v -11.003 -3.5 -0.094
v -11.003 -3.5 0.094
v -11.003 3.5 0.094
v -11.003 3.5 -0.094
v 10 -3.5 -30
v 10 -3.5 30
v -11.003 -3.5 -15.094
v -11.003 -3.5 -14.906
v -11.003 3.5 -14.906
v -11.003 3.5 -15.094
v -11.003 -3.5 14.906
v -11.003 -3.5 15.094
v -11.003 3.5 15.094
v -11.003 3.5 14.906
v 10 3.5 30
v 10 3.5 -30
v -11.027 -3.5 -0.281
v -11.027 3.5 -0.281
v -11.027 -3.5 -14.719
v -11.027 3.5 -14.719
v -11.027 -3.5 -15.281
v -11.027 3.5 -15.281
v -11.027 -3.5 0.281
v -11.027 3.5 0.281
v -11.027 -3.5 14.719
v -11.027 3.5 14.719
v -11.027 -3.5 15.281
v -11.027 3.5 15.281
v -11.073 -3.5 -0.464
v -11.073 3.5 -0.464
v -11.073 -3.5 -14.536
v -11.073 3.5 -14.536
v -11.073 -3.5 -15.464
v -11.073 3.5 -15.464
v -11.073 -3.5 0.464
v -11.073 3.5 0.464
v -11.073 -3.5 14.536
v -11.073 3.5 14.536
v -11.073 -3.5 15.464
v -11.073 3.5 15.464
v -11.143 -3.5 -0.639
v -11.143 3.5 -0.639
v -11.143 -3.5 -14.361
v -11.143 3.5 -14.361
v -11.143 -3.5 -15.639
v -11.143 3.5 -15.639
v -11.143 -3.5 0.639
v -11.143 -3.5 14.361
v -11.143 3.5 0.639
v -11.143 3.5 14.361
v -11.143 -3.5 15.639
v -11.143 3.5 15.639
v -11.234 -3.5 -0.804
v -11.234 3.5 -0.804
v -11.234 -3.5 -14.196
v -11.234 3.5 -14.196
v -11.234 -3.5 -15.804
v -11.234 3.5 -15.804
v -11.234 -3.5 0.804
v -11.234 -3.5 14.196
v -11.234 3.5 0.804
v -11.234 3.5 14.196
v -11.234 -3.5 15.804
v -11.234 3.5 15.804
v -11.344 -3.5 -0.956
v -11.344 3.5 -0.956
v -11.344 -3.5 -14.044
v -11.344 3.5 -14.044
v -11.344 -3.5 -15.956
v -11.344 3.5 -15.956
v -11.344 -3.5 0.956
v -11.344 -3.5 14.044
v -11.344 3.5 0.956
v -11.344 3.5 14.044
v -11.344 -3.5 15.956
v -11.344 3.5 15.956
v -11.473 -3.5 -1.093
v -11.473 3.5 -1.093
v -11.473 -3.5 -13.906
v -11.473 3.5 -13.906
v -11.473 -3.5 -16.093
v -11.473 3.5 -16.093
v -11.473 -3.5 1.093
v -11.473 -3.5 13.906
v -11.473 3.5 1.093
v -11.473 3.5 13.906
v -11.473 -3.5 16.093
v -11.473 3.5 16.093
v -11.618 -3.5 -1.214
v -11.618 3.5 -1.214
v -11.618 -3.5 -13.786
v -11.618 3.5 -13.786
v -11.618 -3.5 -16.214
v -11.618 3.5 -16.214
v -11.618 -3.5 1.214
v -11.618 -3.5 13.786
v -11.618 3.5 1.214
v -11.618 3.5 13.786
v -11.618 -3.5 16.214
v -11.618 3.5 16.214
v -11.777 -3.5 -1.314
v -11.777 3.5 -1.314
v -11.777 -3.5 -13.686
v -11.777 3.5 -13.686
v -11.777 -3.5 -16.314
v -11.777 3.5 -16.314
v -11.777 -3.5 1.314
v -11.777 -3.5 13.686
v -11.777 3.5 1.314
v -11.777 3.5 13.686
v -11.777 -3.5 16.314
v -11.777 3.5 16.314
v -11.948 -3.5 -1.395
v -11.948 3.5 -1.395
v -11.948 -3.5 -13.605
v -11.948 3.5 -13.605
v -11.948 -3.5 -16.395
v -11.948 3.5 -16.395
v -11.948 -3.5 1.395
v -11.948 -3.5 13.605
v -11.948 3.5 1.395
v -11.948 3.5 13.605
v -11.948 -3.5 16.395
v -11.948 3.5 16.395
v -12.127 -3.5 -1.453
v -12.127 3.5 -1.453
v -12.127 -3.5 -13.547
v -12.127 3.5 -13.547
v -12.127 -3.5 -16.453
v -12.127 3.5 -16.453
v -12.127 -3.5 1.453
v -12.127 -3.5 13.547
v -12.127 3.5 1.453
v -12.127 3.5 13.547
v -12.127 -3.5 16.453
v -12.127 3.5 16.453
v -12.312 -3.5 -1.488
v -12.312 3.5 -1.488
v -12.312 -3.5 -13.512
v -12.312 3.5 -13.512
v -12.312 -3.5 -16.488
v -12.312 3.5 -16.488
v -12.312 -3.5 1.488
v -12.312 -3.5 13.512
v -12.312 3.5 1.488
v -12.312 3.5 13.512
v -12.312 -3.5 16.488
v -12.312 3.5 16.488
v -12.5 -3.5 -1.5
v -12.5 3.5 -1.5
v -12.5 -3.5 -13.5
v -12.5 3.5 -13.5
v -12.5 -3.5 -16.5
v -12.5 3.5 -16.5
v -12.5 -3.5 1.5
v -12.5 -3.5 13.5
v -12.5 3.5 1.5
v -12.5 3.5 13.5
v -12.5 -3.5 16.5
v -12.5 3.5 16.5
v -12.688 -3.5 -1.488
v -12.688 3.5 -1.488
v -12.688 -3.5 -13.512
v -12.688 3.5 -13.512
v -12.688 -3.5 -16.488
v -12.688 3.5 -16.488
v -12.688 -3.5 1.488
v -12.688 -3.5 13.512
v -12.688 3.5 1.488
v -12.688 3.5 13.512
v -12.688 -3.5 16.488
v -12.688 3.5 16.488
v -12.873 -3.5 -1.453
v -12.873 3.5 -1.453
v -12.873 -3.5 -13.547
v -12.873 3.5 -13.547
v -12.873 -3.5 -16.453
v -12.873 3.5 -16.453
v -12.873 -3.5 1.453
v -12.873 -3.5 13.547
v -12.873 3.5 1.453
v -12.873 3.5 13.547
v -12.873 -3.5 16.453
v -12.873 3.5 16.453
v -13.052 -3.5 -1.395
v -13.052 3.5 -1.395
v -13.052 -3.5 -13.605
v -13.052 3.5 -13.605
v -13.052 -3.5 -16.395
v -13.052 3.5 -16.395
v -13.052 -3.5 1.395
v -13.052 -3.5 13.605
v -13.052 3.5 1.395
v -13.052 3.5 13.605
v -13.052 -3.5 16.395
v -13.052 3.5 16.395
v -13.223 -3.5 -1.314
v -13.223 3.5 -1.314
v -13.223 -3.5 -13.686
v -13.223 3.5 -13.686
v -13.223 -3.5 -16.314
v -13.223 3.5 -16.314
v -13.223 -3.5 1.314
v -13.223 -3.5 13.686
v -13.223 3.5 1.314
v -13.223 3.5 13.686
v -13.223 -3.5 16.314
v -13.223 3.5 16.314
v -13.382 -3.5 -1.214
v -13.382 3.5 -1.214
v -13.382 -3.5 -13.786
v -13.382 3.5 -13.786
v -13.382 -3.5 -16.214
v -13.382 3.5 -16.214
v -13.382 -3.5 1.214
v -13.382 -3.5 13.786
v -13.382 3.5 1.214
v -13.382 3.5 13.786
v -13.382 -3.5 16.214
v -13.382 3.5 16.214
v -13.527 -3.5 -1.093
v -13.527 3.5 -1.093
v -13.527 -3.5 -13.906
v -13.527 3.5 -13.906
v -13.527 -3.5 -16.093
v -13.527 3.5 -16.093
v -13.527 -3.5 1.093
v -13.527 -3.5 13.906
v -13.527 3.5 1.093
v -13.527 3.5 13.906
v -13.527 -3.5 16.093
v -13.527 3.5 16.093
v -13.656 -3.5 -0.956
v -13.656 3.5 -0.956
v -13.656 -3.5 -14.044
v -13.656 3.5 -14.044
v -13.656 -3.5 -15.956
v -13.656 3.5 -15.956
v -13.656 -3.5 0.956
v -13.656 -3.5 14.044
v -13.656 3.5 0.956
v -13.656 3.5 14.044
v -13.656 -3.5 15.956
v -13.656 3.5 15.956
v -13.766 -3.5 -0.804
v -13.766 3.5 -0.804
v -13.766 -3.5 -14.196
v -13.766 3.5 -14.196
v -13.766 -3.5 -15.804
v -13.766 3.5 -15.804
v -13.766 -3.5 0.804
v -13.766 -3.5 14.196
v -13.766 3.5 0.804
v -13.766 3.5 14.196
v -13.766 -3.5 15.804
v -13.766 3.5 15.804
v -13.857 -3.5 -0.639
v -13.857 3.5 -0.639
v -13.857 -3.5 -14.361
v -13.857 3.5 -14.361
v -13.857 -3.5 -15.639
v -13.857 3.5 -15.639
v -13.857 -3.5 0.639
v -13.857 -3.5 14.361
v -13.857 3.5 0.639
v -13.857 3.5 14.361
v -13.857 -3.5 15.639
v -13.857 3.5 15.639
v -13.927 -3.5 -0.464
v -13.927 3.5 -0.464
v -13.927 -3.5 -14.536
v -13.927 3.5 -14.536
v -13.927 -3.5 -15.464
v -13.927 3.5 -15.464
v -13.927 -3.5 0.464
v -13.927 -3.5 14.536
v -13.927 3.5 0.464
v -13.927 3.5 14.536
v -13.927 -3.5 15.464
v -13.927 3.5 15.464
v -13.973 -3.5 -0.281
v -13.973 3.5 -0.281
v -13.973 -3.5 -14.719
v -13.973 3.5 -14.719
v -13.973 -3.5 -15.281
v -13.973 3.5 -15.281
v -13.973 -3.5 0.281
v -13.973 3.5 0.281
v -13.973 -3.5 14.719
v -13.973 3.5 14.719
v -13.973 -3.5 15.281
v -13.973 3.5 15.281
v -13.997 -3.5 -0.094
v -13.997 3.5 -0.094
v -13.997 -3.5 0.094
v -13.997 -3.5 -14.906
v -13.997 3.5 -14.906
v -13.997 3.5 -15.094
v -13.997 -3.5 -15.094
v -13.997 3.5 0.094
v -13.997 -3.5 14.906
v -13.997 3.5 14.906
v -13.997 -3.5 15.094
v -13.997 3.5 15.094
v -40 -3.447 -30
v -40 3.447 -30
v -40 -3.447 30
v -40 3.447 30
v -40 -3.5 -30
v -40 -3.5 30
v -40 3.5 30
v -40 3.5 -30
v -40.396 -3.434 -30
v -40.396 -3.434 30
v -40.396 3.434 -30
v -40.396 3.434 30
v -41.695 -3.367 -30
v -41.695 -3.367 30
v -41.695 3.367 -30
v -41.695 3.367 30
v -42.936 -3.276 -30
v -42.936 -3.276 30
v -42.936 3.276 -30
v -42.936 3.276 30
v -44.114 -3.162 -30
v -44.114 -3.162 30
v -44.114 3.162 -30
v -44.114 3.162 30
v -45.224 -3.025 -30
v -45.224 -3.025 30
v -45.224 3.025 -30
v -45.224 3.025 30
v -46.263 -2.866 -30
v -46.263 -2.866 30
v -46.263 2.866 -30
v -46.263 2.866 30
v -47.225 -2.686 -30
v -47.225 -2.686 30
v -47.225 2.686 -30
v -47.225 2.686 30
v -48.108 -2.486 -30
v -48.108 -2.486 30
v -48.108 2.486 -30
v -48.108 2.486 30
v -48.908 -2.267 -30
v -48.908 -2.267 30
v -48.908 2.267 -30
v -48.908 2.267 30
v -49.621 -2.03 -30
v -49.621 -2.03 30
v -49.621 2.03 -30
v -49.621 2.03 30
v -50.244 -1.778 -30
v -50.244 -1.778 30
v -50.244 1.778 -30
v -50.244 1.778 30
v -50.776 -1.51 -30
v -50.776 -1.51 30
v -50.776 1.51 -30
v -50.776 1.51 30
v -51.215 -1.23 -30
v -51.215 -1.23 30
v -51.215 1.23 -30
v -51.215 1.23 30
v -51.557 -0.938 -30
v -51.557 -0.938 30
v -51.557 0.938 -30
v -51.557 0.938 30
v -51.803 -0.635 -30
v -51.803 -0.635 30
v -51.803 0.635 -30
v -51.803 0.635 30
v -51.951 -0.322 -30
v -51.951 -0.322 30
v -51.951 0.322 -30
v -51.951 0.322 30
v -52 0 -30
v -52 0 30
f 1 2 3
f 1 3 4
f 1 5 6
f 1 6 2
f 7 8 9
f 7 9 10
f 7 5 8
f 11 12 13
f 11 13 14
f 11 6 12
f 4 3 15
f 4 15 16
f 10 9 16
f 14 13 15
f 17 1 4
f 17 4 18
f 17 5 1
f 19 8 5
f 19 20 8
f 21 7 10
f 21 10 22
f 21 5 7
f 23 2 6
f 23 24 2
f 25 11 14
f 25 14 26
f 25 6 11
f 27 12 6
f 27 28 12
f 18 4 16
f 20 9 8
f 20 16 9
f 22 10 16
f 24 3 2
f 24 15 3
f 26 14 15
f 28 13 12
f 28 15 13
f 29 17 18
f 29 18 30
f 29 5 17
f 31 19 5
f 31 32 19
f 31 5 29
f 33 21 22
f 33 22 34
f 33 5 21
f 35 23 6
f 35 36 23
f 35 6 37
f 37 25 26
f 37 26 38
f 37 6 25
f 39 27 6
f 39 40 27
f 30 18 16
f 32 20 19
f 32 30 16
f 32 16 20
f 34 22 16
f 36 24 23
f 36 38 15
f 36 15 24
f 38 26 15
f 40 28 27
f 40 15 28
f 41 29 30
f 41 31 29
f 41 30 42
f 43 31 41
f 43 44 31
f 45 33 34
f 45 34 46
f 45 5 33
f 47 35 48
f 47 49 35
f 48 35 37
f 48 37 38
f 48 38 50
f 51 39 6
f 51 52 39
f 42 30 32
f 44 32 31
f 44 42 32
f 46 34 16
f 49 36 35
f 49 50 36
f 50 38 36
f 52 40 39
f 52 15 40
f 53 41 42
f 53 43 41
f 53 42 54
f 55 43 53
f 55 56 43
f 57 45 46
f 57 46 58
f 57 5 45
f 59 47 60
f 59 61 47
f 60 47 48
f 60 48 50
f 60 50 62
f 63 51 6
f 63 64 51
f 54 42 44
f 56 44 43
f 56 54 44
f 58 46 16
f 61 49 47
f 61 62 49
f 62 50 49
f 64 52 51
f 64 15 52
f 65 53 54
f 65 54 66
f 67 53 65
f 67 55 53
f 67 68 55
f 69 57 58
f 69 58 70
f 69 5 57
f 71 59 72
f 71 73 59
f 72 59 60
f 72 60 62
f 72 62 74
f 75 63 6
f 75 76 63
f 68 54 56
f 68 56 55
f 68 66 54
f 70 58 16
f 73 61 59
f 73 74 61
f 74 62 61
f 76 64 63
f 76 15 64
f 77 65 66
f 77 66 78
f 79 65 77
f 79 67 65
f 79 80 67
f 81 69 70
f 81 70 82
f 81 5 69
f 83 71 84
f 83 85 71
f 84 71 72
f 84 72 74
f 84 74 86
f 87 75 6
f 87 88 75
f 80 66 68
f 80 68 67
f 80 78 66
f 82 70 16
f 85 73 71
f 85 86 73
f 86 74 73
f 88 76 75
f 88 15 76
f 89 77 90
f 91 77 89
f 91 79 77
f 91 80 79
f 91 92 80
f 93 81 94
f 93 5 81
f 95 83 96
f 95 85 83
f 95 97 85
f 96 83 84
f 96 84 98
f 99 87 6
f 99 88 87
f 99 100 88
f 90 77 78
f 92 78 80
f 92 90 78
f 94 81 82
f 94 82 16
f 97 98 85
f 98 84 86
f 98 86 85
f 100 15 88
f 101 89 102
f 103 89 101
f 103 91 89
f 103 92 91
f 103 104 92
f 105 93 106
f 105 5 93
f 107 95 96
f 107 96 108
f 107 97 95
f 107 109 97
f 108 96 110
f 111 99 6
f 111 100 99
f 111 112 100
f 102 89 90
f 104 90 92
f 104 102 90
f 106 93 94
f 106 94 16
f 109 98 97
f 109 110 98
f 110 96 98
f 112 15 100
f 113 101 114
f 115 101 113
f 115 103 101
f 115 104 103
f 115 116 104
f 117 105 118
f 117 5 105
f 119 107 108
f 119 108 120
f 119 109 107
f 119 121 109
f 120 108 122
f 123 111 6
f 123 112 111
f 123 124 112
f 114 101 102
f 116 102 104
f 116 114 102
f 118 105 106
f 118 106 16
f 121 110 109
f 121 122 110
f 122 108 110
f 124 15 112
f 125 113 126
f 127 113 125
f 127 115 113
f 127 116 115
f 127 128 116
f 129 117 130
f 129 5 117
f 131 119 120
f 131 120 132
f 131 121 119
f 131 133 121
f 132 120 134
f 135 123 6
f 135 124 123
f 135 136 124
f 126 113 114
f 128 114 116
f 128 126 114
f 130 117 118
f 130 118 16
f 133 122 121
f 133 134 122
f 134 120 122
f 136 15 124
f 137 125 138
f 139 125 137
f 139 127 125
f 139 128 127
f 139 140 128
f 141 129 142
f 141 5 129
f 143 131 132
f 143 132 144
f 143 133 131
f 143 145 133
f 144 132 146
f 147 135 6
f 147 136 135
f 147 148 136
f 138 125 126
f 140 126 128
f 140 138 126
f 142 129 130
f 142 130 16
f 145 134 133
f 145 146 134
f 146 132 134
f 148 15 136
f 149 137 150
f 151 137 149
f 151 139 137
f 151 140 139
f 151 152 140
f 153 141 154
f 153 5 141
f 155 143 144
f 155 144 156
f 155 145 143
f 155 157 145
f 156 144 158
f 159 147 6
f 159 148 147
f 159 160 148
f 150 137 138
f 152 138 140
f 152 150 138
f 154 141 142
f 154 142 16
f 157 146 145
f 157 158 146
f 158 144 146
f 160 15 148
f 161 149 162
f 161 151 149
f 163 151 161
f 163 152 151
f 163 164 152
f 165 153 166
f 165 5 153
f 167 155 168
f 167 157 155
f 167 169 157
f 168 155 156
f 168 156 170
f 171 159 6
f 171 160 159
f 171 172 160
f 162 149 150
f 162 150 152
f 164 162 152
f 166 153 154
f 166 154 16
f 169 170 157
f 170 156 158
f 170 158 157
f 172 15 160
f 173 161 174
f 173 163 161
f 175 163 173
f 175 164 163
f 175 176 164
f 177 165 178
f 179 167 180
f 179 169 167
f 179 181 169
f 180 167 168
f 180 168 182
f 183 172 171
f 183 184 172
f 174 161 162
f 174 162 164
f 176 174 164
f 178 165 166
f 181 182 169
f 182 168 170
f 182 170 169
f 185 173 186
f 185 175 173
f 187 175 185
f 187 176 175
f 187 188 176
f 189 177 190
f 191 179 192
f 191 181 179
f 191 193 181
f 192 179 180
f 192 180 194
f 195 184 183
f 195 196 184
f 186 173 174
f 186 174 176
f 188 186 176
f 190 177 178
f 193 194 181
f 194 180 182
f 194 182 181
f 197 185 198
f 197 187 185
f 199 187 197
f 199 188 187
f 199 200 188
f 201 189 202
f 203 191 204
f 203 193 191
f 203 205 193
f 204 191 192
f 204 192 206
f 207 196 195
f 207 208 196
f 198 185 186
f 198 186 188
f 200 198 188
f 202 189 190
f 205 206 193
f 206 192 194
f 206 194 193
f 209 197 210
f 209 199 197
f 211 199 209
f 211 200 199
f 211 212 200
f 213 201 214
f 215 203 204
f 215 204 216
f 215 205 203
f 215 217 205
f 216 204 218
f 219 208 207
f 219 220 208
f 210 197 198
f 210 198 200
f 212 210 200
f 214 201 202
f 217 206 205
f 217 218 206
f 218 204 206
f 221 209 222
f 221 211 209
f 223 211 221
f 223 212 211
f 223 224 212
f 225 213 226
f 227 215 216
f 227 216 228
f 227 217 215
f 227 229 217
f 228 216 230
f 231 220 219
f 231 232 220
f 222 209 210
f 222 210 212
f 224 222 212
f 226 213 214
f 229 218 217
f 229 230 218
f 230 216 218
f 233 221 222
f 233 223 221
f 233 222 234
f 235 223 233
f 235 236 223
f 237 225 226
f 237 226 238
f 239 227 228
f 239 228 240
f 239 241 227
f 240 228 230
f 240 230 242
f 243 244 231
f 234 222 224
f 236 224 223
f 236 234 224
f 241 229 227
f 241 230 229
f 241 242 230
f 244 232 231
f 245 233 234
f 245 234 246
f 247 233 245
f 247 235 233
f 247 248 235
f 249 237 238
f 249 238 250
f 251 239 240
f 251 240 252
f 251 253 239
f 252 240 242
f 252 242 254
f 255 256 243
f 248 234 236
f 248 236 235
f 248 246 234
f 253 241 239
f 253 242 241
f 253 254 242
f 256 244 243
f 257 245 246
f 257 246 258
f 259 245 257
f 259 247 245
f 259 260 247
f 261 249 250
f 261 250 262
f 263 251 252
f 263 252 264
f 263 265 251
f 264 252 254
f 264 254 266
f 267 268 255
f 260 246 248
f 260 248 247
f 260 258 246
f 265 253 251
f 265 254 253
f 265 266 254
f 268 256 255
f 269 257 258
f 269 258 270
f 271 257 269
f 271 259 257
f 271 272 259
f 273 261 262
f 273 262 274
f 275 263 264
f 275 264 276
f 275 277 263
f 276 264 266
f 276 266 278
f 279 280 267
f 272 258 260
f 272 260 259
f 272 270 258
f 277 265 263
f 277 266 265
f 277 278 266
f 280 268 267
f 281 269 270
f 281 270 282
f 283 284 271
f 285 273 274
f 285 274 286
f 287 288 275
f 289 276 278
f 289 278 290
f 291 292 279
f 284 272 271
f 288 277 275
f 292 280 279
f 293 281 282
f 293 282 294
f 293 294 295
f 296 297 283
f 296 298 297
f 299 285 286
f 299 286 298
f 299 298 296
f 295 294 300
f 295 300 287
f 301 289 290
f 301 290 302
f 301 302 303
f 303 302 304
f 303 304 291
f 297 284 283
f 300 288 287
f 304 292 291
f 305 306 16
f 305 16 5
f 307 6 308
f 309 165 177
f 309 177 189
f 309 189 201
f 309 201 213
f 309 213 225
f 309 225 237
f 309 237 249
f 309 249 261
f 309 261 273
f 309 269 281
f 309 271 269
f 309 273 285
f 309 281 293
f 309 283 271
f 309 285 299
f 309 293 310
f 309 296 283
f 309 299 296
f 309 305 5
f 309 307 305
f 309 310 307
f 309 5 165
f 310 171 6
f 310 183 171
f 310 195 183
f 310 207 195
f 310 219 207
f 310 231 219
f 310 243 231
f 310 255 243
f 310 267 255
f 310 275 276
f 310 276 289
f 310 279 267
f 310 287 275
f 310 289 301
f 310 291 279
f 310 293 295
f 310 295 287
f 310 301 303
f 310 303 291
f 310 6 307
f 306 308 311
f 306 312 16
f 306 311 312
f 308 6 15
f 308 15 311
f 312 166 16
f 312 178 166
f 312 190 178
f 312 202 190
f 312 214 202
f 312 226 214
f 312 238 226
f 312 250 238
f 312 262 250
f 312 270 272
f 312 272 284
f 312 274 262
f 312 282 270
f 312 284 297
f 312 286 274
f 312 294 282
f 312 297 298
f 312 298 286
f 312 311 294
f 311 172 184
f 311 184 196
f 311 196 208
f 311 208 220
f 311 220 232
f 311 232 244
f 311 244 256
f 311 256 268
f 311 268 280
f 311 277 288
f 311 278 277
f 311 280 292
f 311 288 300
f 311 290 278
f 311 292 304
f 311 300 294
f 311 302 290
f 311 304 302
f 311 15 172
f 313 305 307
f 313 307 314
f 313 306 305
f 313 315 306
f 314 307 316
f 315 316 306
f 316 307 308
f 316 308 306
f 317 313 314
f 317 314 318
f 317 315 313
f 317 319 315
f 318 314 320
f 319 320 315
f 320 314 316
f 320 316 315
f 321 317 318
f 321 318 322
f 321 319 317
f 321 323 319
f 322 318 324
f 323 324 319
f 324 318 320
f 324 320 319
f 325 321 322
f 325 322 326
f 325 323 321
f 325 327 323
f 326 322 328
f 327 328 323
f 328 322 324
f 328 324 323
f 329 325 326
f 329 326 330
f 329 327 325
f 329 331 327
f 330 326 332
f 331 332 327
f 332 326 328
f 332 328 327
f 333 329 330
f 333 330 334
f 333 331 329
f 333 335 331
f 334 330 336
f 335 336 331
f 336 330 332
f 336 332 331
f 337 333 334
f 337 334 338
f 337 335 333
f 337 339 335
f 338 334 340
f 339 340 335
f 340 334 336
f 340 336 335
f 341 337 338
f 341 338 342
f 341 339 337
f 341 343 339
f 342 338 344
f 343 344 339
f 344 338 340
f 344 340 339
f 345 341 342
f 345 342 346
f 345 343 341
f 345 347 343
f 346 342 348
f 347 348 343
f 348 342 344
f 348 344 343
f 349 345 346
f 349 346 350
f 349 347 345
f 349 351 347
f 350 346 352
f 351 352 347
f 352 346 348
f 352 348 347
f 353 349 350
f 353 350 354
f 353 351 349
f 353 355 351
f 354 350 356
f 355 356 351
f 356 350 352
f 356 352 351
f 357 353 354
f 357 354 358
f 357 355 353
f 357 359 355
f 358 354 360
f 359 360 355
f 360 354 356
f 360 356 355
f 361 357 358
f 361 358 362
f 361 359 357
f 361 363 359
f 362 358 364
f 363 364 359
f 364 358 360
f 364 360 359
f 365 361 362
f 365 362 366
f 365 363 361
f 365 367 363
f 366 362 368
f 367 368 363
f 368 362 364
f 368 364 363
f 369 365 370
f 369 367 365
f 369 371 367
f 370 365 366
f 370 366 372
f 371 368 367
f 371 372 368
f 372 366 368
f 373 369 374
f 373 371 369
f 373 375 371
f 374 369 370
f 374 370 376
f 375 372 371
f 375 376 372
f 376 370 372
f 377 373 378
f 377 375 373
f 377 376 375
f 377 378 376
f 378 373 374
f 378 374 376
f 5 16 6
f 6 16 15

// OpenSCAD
include <../../Parameters.scad>
use <../manufacturing_helpers/666_1235.scad>

rotate([90,0,0])
    333_1035_B();
